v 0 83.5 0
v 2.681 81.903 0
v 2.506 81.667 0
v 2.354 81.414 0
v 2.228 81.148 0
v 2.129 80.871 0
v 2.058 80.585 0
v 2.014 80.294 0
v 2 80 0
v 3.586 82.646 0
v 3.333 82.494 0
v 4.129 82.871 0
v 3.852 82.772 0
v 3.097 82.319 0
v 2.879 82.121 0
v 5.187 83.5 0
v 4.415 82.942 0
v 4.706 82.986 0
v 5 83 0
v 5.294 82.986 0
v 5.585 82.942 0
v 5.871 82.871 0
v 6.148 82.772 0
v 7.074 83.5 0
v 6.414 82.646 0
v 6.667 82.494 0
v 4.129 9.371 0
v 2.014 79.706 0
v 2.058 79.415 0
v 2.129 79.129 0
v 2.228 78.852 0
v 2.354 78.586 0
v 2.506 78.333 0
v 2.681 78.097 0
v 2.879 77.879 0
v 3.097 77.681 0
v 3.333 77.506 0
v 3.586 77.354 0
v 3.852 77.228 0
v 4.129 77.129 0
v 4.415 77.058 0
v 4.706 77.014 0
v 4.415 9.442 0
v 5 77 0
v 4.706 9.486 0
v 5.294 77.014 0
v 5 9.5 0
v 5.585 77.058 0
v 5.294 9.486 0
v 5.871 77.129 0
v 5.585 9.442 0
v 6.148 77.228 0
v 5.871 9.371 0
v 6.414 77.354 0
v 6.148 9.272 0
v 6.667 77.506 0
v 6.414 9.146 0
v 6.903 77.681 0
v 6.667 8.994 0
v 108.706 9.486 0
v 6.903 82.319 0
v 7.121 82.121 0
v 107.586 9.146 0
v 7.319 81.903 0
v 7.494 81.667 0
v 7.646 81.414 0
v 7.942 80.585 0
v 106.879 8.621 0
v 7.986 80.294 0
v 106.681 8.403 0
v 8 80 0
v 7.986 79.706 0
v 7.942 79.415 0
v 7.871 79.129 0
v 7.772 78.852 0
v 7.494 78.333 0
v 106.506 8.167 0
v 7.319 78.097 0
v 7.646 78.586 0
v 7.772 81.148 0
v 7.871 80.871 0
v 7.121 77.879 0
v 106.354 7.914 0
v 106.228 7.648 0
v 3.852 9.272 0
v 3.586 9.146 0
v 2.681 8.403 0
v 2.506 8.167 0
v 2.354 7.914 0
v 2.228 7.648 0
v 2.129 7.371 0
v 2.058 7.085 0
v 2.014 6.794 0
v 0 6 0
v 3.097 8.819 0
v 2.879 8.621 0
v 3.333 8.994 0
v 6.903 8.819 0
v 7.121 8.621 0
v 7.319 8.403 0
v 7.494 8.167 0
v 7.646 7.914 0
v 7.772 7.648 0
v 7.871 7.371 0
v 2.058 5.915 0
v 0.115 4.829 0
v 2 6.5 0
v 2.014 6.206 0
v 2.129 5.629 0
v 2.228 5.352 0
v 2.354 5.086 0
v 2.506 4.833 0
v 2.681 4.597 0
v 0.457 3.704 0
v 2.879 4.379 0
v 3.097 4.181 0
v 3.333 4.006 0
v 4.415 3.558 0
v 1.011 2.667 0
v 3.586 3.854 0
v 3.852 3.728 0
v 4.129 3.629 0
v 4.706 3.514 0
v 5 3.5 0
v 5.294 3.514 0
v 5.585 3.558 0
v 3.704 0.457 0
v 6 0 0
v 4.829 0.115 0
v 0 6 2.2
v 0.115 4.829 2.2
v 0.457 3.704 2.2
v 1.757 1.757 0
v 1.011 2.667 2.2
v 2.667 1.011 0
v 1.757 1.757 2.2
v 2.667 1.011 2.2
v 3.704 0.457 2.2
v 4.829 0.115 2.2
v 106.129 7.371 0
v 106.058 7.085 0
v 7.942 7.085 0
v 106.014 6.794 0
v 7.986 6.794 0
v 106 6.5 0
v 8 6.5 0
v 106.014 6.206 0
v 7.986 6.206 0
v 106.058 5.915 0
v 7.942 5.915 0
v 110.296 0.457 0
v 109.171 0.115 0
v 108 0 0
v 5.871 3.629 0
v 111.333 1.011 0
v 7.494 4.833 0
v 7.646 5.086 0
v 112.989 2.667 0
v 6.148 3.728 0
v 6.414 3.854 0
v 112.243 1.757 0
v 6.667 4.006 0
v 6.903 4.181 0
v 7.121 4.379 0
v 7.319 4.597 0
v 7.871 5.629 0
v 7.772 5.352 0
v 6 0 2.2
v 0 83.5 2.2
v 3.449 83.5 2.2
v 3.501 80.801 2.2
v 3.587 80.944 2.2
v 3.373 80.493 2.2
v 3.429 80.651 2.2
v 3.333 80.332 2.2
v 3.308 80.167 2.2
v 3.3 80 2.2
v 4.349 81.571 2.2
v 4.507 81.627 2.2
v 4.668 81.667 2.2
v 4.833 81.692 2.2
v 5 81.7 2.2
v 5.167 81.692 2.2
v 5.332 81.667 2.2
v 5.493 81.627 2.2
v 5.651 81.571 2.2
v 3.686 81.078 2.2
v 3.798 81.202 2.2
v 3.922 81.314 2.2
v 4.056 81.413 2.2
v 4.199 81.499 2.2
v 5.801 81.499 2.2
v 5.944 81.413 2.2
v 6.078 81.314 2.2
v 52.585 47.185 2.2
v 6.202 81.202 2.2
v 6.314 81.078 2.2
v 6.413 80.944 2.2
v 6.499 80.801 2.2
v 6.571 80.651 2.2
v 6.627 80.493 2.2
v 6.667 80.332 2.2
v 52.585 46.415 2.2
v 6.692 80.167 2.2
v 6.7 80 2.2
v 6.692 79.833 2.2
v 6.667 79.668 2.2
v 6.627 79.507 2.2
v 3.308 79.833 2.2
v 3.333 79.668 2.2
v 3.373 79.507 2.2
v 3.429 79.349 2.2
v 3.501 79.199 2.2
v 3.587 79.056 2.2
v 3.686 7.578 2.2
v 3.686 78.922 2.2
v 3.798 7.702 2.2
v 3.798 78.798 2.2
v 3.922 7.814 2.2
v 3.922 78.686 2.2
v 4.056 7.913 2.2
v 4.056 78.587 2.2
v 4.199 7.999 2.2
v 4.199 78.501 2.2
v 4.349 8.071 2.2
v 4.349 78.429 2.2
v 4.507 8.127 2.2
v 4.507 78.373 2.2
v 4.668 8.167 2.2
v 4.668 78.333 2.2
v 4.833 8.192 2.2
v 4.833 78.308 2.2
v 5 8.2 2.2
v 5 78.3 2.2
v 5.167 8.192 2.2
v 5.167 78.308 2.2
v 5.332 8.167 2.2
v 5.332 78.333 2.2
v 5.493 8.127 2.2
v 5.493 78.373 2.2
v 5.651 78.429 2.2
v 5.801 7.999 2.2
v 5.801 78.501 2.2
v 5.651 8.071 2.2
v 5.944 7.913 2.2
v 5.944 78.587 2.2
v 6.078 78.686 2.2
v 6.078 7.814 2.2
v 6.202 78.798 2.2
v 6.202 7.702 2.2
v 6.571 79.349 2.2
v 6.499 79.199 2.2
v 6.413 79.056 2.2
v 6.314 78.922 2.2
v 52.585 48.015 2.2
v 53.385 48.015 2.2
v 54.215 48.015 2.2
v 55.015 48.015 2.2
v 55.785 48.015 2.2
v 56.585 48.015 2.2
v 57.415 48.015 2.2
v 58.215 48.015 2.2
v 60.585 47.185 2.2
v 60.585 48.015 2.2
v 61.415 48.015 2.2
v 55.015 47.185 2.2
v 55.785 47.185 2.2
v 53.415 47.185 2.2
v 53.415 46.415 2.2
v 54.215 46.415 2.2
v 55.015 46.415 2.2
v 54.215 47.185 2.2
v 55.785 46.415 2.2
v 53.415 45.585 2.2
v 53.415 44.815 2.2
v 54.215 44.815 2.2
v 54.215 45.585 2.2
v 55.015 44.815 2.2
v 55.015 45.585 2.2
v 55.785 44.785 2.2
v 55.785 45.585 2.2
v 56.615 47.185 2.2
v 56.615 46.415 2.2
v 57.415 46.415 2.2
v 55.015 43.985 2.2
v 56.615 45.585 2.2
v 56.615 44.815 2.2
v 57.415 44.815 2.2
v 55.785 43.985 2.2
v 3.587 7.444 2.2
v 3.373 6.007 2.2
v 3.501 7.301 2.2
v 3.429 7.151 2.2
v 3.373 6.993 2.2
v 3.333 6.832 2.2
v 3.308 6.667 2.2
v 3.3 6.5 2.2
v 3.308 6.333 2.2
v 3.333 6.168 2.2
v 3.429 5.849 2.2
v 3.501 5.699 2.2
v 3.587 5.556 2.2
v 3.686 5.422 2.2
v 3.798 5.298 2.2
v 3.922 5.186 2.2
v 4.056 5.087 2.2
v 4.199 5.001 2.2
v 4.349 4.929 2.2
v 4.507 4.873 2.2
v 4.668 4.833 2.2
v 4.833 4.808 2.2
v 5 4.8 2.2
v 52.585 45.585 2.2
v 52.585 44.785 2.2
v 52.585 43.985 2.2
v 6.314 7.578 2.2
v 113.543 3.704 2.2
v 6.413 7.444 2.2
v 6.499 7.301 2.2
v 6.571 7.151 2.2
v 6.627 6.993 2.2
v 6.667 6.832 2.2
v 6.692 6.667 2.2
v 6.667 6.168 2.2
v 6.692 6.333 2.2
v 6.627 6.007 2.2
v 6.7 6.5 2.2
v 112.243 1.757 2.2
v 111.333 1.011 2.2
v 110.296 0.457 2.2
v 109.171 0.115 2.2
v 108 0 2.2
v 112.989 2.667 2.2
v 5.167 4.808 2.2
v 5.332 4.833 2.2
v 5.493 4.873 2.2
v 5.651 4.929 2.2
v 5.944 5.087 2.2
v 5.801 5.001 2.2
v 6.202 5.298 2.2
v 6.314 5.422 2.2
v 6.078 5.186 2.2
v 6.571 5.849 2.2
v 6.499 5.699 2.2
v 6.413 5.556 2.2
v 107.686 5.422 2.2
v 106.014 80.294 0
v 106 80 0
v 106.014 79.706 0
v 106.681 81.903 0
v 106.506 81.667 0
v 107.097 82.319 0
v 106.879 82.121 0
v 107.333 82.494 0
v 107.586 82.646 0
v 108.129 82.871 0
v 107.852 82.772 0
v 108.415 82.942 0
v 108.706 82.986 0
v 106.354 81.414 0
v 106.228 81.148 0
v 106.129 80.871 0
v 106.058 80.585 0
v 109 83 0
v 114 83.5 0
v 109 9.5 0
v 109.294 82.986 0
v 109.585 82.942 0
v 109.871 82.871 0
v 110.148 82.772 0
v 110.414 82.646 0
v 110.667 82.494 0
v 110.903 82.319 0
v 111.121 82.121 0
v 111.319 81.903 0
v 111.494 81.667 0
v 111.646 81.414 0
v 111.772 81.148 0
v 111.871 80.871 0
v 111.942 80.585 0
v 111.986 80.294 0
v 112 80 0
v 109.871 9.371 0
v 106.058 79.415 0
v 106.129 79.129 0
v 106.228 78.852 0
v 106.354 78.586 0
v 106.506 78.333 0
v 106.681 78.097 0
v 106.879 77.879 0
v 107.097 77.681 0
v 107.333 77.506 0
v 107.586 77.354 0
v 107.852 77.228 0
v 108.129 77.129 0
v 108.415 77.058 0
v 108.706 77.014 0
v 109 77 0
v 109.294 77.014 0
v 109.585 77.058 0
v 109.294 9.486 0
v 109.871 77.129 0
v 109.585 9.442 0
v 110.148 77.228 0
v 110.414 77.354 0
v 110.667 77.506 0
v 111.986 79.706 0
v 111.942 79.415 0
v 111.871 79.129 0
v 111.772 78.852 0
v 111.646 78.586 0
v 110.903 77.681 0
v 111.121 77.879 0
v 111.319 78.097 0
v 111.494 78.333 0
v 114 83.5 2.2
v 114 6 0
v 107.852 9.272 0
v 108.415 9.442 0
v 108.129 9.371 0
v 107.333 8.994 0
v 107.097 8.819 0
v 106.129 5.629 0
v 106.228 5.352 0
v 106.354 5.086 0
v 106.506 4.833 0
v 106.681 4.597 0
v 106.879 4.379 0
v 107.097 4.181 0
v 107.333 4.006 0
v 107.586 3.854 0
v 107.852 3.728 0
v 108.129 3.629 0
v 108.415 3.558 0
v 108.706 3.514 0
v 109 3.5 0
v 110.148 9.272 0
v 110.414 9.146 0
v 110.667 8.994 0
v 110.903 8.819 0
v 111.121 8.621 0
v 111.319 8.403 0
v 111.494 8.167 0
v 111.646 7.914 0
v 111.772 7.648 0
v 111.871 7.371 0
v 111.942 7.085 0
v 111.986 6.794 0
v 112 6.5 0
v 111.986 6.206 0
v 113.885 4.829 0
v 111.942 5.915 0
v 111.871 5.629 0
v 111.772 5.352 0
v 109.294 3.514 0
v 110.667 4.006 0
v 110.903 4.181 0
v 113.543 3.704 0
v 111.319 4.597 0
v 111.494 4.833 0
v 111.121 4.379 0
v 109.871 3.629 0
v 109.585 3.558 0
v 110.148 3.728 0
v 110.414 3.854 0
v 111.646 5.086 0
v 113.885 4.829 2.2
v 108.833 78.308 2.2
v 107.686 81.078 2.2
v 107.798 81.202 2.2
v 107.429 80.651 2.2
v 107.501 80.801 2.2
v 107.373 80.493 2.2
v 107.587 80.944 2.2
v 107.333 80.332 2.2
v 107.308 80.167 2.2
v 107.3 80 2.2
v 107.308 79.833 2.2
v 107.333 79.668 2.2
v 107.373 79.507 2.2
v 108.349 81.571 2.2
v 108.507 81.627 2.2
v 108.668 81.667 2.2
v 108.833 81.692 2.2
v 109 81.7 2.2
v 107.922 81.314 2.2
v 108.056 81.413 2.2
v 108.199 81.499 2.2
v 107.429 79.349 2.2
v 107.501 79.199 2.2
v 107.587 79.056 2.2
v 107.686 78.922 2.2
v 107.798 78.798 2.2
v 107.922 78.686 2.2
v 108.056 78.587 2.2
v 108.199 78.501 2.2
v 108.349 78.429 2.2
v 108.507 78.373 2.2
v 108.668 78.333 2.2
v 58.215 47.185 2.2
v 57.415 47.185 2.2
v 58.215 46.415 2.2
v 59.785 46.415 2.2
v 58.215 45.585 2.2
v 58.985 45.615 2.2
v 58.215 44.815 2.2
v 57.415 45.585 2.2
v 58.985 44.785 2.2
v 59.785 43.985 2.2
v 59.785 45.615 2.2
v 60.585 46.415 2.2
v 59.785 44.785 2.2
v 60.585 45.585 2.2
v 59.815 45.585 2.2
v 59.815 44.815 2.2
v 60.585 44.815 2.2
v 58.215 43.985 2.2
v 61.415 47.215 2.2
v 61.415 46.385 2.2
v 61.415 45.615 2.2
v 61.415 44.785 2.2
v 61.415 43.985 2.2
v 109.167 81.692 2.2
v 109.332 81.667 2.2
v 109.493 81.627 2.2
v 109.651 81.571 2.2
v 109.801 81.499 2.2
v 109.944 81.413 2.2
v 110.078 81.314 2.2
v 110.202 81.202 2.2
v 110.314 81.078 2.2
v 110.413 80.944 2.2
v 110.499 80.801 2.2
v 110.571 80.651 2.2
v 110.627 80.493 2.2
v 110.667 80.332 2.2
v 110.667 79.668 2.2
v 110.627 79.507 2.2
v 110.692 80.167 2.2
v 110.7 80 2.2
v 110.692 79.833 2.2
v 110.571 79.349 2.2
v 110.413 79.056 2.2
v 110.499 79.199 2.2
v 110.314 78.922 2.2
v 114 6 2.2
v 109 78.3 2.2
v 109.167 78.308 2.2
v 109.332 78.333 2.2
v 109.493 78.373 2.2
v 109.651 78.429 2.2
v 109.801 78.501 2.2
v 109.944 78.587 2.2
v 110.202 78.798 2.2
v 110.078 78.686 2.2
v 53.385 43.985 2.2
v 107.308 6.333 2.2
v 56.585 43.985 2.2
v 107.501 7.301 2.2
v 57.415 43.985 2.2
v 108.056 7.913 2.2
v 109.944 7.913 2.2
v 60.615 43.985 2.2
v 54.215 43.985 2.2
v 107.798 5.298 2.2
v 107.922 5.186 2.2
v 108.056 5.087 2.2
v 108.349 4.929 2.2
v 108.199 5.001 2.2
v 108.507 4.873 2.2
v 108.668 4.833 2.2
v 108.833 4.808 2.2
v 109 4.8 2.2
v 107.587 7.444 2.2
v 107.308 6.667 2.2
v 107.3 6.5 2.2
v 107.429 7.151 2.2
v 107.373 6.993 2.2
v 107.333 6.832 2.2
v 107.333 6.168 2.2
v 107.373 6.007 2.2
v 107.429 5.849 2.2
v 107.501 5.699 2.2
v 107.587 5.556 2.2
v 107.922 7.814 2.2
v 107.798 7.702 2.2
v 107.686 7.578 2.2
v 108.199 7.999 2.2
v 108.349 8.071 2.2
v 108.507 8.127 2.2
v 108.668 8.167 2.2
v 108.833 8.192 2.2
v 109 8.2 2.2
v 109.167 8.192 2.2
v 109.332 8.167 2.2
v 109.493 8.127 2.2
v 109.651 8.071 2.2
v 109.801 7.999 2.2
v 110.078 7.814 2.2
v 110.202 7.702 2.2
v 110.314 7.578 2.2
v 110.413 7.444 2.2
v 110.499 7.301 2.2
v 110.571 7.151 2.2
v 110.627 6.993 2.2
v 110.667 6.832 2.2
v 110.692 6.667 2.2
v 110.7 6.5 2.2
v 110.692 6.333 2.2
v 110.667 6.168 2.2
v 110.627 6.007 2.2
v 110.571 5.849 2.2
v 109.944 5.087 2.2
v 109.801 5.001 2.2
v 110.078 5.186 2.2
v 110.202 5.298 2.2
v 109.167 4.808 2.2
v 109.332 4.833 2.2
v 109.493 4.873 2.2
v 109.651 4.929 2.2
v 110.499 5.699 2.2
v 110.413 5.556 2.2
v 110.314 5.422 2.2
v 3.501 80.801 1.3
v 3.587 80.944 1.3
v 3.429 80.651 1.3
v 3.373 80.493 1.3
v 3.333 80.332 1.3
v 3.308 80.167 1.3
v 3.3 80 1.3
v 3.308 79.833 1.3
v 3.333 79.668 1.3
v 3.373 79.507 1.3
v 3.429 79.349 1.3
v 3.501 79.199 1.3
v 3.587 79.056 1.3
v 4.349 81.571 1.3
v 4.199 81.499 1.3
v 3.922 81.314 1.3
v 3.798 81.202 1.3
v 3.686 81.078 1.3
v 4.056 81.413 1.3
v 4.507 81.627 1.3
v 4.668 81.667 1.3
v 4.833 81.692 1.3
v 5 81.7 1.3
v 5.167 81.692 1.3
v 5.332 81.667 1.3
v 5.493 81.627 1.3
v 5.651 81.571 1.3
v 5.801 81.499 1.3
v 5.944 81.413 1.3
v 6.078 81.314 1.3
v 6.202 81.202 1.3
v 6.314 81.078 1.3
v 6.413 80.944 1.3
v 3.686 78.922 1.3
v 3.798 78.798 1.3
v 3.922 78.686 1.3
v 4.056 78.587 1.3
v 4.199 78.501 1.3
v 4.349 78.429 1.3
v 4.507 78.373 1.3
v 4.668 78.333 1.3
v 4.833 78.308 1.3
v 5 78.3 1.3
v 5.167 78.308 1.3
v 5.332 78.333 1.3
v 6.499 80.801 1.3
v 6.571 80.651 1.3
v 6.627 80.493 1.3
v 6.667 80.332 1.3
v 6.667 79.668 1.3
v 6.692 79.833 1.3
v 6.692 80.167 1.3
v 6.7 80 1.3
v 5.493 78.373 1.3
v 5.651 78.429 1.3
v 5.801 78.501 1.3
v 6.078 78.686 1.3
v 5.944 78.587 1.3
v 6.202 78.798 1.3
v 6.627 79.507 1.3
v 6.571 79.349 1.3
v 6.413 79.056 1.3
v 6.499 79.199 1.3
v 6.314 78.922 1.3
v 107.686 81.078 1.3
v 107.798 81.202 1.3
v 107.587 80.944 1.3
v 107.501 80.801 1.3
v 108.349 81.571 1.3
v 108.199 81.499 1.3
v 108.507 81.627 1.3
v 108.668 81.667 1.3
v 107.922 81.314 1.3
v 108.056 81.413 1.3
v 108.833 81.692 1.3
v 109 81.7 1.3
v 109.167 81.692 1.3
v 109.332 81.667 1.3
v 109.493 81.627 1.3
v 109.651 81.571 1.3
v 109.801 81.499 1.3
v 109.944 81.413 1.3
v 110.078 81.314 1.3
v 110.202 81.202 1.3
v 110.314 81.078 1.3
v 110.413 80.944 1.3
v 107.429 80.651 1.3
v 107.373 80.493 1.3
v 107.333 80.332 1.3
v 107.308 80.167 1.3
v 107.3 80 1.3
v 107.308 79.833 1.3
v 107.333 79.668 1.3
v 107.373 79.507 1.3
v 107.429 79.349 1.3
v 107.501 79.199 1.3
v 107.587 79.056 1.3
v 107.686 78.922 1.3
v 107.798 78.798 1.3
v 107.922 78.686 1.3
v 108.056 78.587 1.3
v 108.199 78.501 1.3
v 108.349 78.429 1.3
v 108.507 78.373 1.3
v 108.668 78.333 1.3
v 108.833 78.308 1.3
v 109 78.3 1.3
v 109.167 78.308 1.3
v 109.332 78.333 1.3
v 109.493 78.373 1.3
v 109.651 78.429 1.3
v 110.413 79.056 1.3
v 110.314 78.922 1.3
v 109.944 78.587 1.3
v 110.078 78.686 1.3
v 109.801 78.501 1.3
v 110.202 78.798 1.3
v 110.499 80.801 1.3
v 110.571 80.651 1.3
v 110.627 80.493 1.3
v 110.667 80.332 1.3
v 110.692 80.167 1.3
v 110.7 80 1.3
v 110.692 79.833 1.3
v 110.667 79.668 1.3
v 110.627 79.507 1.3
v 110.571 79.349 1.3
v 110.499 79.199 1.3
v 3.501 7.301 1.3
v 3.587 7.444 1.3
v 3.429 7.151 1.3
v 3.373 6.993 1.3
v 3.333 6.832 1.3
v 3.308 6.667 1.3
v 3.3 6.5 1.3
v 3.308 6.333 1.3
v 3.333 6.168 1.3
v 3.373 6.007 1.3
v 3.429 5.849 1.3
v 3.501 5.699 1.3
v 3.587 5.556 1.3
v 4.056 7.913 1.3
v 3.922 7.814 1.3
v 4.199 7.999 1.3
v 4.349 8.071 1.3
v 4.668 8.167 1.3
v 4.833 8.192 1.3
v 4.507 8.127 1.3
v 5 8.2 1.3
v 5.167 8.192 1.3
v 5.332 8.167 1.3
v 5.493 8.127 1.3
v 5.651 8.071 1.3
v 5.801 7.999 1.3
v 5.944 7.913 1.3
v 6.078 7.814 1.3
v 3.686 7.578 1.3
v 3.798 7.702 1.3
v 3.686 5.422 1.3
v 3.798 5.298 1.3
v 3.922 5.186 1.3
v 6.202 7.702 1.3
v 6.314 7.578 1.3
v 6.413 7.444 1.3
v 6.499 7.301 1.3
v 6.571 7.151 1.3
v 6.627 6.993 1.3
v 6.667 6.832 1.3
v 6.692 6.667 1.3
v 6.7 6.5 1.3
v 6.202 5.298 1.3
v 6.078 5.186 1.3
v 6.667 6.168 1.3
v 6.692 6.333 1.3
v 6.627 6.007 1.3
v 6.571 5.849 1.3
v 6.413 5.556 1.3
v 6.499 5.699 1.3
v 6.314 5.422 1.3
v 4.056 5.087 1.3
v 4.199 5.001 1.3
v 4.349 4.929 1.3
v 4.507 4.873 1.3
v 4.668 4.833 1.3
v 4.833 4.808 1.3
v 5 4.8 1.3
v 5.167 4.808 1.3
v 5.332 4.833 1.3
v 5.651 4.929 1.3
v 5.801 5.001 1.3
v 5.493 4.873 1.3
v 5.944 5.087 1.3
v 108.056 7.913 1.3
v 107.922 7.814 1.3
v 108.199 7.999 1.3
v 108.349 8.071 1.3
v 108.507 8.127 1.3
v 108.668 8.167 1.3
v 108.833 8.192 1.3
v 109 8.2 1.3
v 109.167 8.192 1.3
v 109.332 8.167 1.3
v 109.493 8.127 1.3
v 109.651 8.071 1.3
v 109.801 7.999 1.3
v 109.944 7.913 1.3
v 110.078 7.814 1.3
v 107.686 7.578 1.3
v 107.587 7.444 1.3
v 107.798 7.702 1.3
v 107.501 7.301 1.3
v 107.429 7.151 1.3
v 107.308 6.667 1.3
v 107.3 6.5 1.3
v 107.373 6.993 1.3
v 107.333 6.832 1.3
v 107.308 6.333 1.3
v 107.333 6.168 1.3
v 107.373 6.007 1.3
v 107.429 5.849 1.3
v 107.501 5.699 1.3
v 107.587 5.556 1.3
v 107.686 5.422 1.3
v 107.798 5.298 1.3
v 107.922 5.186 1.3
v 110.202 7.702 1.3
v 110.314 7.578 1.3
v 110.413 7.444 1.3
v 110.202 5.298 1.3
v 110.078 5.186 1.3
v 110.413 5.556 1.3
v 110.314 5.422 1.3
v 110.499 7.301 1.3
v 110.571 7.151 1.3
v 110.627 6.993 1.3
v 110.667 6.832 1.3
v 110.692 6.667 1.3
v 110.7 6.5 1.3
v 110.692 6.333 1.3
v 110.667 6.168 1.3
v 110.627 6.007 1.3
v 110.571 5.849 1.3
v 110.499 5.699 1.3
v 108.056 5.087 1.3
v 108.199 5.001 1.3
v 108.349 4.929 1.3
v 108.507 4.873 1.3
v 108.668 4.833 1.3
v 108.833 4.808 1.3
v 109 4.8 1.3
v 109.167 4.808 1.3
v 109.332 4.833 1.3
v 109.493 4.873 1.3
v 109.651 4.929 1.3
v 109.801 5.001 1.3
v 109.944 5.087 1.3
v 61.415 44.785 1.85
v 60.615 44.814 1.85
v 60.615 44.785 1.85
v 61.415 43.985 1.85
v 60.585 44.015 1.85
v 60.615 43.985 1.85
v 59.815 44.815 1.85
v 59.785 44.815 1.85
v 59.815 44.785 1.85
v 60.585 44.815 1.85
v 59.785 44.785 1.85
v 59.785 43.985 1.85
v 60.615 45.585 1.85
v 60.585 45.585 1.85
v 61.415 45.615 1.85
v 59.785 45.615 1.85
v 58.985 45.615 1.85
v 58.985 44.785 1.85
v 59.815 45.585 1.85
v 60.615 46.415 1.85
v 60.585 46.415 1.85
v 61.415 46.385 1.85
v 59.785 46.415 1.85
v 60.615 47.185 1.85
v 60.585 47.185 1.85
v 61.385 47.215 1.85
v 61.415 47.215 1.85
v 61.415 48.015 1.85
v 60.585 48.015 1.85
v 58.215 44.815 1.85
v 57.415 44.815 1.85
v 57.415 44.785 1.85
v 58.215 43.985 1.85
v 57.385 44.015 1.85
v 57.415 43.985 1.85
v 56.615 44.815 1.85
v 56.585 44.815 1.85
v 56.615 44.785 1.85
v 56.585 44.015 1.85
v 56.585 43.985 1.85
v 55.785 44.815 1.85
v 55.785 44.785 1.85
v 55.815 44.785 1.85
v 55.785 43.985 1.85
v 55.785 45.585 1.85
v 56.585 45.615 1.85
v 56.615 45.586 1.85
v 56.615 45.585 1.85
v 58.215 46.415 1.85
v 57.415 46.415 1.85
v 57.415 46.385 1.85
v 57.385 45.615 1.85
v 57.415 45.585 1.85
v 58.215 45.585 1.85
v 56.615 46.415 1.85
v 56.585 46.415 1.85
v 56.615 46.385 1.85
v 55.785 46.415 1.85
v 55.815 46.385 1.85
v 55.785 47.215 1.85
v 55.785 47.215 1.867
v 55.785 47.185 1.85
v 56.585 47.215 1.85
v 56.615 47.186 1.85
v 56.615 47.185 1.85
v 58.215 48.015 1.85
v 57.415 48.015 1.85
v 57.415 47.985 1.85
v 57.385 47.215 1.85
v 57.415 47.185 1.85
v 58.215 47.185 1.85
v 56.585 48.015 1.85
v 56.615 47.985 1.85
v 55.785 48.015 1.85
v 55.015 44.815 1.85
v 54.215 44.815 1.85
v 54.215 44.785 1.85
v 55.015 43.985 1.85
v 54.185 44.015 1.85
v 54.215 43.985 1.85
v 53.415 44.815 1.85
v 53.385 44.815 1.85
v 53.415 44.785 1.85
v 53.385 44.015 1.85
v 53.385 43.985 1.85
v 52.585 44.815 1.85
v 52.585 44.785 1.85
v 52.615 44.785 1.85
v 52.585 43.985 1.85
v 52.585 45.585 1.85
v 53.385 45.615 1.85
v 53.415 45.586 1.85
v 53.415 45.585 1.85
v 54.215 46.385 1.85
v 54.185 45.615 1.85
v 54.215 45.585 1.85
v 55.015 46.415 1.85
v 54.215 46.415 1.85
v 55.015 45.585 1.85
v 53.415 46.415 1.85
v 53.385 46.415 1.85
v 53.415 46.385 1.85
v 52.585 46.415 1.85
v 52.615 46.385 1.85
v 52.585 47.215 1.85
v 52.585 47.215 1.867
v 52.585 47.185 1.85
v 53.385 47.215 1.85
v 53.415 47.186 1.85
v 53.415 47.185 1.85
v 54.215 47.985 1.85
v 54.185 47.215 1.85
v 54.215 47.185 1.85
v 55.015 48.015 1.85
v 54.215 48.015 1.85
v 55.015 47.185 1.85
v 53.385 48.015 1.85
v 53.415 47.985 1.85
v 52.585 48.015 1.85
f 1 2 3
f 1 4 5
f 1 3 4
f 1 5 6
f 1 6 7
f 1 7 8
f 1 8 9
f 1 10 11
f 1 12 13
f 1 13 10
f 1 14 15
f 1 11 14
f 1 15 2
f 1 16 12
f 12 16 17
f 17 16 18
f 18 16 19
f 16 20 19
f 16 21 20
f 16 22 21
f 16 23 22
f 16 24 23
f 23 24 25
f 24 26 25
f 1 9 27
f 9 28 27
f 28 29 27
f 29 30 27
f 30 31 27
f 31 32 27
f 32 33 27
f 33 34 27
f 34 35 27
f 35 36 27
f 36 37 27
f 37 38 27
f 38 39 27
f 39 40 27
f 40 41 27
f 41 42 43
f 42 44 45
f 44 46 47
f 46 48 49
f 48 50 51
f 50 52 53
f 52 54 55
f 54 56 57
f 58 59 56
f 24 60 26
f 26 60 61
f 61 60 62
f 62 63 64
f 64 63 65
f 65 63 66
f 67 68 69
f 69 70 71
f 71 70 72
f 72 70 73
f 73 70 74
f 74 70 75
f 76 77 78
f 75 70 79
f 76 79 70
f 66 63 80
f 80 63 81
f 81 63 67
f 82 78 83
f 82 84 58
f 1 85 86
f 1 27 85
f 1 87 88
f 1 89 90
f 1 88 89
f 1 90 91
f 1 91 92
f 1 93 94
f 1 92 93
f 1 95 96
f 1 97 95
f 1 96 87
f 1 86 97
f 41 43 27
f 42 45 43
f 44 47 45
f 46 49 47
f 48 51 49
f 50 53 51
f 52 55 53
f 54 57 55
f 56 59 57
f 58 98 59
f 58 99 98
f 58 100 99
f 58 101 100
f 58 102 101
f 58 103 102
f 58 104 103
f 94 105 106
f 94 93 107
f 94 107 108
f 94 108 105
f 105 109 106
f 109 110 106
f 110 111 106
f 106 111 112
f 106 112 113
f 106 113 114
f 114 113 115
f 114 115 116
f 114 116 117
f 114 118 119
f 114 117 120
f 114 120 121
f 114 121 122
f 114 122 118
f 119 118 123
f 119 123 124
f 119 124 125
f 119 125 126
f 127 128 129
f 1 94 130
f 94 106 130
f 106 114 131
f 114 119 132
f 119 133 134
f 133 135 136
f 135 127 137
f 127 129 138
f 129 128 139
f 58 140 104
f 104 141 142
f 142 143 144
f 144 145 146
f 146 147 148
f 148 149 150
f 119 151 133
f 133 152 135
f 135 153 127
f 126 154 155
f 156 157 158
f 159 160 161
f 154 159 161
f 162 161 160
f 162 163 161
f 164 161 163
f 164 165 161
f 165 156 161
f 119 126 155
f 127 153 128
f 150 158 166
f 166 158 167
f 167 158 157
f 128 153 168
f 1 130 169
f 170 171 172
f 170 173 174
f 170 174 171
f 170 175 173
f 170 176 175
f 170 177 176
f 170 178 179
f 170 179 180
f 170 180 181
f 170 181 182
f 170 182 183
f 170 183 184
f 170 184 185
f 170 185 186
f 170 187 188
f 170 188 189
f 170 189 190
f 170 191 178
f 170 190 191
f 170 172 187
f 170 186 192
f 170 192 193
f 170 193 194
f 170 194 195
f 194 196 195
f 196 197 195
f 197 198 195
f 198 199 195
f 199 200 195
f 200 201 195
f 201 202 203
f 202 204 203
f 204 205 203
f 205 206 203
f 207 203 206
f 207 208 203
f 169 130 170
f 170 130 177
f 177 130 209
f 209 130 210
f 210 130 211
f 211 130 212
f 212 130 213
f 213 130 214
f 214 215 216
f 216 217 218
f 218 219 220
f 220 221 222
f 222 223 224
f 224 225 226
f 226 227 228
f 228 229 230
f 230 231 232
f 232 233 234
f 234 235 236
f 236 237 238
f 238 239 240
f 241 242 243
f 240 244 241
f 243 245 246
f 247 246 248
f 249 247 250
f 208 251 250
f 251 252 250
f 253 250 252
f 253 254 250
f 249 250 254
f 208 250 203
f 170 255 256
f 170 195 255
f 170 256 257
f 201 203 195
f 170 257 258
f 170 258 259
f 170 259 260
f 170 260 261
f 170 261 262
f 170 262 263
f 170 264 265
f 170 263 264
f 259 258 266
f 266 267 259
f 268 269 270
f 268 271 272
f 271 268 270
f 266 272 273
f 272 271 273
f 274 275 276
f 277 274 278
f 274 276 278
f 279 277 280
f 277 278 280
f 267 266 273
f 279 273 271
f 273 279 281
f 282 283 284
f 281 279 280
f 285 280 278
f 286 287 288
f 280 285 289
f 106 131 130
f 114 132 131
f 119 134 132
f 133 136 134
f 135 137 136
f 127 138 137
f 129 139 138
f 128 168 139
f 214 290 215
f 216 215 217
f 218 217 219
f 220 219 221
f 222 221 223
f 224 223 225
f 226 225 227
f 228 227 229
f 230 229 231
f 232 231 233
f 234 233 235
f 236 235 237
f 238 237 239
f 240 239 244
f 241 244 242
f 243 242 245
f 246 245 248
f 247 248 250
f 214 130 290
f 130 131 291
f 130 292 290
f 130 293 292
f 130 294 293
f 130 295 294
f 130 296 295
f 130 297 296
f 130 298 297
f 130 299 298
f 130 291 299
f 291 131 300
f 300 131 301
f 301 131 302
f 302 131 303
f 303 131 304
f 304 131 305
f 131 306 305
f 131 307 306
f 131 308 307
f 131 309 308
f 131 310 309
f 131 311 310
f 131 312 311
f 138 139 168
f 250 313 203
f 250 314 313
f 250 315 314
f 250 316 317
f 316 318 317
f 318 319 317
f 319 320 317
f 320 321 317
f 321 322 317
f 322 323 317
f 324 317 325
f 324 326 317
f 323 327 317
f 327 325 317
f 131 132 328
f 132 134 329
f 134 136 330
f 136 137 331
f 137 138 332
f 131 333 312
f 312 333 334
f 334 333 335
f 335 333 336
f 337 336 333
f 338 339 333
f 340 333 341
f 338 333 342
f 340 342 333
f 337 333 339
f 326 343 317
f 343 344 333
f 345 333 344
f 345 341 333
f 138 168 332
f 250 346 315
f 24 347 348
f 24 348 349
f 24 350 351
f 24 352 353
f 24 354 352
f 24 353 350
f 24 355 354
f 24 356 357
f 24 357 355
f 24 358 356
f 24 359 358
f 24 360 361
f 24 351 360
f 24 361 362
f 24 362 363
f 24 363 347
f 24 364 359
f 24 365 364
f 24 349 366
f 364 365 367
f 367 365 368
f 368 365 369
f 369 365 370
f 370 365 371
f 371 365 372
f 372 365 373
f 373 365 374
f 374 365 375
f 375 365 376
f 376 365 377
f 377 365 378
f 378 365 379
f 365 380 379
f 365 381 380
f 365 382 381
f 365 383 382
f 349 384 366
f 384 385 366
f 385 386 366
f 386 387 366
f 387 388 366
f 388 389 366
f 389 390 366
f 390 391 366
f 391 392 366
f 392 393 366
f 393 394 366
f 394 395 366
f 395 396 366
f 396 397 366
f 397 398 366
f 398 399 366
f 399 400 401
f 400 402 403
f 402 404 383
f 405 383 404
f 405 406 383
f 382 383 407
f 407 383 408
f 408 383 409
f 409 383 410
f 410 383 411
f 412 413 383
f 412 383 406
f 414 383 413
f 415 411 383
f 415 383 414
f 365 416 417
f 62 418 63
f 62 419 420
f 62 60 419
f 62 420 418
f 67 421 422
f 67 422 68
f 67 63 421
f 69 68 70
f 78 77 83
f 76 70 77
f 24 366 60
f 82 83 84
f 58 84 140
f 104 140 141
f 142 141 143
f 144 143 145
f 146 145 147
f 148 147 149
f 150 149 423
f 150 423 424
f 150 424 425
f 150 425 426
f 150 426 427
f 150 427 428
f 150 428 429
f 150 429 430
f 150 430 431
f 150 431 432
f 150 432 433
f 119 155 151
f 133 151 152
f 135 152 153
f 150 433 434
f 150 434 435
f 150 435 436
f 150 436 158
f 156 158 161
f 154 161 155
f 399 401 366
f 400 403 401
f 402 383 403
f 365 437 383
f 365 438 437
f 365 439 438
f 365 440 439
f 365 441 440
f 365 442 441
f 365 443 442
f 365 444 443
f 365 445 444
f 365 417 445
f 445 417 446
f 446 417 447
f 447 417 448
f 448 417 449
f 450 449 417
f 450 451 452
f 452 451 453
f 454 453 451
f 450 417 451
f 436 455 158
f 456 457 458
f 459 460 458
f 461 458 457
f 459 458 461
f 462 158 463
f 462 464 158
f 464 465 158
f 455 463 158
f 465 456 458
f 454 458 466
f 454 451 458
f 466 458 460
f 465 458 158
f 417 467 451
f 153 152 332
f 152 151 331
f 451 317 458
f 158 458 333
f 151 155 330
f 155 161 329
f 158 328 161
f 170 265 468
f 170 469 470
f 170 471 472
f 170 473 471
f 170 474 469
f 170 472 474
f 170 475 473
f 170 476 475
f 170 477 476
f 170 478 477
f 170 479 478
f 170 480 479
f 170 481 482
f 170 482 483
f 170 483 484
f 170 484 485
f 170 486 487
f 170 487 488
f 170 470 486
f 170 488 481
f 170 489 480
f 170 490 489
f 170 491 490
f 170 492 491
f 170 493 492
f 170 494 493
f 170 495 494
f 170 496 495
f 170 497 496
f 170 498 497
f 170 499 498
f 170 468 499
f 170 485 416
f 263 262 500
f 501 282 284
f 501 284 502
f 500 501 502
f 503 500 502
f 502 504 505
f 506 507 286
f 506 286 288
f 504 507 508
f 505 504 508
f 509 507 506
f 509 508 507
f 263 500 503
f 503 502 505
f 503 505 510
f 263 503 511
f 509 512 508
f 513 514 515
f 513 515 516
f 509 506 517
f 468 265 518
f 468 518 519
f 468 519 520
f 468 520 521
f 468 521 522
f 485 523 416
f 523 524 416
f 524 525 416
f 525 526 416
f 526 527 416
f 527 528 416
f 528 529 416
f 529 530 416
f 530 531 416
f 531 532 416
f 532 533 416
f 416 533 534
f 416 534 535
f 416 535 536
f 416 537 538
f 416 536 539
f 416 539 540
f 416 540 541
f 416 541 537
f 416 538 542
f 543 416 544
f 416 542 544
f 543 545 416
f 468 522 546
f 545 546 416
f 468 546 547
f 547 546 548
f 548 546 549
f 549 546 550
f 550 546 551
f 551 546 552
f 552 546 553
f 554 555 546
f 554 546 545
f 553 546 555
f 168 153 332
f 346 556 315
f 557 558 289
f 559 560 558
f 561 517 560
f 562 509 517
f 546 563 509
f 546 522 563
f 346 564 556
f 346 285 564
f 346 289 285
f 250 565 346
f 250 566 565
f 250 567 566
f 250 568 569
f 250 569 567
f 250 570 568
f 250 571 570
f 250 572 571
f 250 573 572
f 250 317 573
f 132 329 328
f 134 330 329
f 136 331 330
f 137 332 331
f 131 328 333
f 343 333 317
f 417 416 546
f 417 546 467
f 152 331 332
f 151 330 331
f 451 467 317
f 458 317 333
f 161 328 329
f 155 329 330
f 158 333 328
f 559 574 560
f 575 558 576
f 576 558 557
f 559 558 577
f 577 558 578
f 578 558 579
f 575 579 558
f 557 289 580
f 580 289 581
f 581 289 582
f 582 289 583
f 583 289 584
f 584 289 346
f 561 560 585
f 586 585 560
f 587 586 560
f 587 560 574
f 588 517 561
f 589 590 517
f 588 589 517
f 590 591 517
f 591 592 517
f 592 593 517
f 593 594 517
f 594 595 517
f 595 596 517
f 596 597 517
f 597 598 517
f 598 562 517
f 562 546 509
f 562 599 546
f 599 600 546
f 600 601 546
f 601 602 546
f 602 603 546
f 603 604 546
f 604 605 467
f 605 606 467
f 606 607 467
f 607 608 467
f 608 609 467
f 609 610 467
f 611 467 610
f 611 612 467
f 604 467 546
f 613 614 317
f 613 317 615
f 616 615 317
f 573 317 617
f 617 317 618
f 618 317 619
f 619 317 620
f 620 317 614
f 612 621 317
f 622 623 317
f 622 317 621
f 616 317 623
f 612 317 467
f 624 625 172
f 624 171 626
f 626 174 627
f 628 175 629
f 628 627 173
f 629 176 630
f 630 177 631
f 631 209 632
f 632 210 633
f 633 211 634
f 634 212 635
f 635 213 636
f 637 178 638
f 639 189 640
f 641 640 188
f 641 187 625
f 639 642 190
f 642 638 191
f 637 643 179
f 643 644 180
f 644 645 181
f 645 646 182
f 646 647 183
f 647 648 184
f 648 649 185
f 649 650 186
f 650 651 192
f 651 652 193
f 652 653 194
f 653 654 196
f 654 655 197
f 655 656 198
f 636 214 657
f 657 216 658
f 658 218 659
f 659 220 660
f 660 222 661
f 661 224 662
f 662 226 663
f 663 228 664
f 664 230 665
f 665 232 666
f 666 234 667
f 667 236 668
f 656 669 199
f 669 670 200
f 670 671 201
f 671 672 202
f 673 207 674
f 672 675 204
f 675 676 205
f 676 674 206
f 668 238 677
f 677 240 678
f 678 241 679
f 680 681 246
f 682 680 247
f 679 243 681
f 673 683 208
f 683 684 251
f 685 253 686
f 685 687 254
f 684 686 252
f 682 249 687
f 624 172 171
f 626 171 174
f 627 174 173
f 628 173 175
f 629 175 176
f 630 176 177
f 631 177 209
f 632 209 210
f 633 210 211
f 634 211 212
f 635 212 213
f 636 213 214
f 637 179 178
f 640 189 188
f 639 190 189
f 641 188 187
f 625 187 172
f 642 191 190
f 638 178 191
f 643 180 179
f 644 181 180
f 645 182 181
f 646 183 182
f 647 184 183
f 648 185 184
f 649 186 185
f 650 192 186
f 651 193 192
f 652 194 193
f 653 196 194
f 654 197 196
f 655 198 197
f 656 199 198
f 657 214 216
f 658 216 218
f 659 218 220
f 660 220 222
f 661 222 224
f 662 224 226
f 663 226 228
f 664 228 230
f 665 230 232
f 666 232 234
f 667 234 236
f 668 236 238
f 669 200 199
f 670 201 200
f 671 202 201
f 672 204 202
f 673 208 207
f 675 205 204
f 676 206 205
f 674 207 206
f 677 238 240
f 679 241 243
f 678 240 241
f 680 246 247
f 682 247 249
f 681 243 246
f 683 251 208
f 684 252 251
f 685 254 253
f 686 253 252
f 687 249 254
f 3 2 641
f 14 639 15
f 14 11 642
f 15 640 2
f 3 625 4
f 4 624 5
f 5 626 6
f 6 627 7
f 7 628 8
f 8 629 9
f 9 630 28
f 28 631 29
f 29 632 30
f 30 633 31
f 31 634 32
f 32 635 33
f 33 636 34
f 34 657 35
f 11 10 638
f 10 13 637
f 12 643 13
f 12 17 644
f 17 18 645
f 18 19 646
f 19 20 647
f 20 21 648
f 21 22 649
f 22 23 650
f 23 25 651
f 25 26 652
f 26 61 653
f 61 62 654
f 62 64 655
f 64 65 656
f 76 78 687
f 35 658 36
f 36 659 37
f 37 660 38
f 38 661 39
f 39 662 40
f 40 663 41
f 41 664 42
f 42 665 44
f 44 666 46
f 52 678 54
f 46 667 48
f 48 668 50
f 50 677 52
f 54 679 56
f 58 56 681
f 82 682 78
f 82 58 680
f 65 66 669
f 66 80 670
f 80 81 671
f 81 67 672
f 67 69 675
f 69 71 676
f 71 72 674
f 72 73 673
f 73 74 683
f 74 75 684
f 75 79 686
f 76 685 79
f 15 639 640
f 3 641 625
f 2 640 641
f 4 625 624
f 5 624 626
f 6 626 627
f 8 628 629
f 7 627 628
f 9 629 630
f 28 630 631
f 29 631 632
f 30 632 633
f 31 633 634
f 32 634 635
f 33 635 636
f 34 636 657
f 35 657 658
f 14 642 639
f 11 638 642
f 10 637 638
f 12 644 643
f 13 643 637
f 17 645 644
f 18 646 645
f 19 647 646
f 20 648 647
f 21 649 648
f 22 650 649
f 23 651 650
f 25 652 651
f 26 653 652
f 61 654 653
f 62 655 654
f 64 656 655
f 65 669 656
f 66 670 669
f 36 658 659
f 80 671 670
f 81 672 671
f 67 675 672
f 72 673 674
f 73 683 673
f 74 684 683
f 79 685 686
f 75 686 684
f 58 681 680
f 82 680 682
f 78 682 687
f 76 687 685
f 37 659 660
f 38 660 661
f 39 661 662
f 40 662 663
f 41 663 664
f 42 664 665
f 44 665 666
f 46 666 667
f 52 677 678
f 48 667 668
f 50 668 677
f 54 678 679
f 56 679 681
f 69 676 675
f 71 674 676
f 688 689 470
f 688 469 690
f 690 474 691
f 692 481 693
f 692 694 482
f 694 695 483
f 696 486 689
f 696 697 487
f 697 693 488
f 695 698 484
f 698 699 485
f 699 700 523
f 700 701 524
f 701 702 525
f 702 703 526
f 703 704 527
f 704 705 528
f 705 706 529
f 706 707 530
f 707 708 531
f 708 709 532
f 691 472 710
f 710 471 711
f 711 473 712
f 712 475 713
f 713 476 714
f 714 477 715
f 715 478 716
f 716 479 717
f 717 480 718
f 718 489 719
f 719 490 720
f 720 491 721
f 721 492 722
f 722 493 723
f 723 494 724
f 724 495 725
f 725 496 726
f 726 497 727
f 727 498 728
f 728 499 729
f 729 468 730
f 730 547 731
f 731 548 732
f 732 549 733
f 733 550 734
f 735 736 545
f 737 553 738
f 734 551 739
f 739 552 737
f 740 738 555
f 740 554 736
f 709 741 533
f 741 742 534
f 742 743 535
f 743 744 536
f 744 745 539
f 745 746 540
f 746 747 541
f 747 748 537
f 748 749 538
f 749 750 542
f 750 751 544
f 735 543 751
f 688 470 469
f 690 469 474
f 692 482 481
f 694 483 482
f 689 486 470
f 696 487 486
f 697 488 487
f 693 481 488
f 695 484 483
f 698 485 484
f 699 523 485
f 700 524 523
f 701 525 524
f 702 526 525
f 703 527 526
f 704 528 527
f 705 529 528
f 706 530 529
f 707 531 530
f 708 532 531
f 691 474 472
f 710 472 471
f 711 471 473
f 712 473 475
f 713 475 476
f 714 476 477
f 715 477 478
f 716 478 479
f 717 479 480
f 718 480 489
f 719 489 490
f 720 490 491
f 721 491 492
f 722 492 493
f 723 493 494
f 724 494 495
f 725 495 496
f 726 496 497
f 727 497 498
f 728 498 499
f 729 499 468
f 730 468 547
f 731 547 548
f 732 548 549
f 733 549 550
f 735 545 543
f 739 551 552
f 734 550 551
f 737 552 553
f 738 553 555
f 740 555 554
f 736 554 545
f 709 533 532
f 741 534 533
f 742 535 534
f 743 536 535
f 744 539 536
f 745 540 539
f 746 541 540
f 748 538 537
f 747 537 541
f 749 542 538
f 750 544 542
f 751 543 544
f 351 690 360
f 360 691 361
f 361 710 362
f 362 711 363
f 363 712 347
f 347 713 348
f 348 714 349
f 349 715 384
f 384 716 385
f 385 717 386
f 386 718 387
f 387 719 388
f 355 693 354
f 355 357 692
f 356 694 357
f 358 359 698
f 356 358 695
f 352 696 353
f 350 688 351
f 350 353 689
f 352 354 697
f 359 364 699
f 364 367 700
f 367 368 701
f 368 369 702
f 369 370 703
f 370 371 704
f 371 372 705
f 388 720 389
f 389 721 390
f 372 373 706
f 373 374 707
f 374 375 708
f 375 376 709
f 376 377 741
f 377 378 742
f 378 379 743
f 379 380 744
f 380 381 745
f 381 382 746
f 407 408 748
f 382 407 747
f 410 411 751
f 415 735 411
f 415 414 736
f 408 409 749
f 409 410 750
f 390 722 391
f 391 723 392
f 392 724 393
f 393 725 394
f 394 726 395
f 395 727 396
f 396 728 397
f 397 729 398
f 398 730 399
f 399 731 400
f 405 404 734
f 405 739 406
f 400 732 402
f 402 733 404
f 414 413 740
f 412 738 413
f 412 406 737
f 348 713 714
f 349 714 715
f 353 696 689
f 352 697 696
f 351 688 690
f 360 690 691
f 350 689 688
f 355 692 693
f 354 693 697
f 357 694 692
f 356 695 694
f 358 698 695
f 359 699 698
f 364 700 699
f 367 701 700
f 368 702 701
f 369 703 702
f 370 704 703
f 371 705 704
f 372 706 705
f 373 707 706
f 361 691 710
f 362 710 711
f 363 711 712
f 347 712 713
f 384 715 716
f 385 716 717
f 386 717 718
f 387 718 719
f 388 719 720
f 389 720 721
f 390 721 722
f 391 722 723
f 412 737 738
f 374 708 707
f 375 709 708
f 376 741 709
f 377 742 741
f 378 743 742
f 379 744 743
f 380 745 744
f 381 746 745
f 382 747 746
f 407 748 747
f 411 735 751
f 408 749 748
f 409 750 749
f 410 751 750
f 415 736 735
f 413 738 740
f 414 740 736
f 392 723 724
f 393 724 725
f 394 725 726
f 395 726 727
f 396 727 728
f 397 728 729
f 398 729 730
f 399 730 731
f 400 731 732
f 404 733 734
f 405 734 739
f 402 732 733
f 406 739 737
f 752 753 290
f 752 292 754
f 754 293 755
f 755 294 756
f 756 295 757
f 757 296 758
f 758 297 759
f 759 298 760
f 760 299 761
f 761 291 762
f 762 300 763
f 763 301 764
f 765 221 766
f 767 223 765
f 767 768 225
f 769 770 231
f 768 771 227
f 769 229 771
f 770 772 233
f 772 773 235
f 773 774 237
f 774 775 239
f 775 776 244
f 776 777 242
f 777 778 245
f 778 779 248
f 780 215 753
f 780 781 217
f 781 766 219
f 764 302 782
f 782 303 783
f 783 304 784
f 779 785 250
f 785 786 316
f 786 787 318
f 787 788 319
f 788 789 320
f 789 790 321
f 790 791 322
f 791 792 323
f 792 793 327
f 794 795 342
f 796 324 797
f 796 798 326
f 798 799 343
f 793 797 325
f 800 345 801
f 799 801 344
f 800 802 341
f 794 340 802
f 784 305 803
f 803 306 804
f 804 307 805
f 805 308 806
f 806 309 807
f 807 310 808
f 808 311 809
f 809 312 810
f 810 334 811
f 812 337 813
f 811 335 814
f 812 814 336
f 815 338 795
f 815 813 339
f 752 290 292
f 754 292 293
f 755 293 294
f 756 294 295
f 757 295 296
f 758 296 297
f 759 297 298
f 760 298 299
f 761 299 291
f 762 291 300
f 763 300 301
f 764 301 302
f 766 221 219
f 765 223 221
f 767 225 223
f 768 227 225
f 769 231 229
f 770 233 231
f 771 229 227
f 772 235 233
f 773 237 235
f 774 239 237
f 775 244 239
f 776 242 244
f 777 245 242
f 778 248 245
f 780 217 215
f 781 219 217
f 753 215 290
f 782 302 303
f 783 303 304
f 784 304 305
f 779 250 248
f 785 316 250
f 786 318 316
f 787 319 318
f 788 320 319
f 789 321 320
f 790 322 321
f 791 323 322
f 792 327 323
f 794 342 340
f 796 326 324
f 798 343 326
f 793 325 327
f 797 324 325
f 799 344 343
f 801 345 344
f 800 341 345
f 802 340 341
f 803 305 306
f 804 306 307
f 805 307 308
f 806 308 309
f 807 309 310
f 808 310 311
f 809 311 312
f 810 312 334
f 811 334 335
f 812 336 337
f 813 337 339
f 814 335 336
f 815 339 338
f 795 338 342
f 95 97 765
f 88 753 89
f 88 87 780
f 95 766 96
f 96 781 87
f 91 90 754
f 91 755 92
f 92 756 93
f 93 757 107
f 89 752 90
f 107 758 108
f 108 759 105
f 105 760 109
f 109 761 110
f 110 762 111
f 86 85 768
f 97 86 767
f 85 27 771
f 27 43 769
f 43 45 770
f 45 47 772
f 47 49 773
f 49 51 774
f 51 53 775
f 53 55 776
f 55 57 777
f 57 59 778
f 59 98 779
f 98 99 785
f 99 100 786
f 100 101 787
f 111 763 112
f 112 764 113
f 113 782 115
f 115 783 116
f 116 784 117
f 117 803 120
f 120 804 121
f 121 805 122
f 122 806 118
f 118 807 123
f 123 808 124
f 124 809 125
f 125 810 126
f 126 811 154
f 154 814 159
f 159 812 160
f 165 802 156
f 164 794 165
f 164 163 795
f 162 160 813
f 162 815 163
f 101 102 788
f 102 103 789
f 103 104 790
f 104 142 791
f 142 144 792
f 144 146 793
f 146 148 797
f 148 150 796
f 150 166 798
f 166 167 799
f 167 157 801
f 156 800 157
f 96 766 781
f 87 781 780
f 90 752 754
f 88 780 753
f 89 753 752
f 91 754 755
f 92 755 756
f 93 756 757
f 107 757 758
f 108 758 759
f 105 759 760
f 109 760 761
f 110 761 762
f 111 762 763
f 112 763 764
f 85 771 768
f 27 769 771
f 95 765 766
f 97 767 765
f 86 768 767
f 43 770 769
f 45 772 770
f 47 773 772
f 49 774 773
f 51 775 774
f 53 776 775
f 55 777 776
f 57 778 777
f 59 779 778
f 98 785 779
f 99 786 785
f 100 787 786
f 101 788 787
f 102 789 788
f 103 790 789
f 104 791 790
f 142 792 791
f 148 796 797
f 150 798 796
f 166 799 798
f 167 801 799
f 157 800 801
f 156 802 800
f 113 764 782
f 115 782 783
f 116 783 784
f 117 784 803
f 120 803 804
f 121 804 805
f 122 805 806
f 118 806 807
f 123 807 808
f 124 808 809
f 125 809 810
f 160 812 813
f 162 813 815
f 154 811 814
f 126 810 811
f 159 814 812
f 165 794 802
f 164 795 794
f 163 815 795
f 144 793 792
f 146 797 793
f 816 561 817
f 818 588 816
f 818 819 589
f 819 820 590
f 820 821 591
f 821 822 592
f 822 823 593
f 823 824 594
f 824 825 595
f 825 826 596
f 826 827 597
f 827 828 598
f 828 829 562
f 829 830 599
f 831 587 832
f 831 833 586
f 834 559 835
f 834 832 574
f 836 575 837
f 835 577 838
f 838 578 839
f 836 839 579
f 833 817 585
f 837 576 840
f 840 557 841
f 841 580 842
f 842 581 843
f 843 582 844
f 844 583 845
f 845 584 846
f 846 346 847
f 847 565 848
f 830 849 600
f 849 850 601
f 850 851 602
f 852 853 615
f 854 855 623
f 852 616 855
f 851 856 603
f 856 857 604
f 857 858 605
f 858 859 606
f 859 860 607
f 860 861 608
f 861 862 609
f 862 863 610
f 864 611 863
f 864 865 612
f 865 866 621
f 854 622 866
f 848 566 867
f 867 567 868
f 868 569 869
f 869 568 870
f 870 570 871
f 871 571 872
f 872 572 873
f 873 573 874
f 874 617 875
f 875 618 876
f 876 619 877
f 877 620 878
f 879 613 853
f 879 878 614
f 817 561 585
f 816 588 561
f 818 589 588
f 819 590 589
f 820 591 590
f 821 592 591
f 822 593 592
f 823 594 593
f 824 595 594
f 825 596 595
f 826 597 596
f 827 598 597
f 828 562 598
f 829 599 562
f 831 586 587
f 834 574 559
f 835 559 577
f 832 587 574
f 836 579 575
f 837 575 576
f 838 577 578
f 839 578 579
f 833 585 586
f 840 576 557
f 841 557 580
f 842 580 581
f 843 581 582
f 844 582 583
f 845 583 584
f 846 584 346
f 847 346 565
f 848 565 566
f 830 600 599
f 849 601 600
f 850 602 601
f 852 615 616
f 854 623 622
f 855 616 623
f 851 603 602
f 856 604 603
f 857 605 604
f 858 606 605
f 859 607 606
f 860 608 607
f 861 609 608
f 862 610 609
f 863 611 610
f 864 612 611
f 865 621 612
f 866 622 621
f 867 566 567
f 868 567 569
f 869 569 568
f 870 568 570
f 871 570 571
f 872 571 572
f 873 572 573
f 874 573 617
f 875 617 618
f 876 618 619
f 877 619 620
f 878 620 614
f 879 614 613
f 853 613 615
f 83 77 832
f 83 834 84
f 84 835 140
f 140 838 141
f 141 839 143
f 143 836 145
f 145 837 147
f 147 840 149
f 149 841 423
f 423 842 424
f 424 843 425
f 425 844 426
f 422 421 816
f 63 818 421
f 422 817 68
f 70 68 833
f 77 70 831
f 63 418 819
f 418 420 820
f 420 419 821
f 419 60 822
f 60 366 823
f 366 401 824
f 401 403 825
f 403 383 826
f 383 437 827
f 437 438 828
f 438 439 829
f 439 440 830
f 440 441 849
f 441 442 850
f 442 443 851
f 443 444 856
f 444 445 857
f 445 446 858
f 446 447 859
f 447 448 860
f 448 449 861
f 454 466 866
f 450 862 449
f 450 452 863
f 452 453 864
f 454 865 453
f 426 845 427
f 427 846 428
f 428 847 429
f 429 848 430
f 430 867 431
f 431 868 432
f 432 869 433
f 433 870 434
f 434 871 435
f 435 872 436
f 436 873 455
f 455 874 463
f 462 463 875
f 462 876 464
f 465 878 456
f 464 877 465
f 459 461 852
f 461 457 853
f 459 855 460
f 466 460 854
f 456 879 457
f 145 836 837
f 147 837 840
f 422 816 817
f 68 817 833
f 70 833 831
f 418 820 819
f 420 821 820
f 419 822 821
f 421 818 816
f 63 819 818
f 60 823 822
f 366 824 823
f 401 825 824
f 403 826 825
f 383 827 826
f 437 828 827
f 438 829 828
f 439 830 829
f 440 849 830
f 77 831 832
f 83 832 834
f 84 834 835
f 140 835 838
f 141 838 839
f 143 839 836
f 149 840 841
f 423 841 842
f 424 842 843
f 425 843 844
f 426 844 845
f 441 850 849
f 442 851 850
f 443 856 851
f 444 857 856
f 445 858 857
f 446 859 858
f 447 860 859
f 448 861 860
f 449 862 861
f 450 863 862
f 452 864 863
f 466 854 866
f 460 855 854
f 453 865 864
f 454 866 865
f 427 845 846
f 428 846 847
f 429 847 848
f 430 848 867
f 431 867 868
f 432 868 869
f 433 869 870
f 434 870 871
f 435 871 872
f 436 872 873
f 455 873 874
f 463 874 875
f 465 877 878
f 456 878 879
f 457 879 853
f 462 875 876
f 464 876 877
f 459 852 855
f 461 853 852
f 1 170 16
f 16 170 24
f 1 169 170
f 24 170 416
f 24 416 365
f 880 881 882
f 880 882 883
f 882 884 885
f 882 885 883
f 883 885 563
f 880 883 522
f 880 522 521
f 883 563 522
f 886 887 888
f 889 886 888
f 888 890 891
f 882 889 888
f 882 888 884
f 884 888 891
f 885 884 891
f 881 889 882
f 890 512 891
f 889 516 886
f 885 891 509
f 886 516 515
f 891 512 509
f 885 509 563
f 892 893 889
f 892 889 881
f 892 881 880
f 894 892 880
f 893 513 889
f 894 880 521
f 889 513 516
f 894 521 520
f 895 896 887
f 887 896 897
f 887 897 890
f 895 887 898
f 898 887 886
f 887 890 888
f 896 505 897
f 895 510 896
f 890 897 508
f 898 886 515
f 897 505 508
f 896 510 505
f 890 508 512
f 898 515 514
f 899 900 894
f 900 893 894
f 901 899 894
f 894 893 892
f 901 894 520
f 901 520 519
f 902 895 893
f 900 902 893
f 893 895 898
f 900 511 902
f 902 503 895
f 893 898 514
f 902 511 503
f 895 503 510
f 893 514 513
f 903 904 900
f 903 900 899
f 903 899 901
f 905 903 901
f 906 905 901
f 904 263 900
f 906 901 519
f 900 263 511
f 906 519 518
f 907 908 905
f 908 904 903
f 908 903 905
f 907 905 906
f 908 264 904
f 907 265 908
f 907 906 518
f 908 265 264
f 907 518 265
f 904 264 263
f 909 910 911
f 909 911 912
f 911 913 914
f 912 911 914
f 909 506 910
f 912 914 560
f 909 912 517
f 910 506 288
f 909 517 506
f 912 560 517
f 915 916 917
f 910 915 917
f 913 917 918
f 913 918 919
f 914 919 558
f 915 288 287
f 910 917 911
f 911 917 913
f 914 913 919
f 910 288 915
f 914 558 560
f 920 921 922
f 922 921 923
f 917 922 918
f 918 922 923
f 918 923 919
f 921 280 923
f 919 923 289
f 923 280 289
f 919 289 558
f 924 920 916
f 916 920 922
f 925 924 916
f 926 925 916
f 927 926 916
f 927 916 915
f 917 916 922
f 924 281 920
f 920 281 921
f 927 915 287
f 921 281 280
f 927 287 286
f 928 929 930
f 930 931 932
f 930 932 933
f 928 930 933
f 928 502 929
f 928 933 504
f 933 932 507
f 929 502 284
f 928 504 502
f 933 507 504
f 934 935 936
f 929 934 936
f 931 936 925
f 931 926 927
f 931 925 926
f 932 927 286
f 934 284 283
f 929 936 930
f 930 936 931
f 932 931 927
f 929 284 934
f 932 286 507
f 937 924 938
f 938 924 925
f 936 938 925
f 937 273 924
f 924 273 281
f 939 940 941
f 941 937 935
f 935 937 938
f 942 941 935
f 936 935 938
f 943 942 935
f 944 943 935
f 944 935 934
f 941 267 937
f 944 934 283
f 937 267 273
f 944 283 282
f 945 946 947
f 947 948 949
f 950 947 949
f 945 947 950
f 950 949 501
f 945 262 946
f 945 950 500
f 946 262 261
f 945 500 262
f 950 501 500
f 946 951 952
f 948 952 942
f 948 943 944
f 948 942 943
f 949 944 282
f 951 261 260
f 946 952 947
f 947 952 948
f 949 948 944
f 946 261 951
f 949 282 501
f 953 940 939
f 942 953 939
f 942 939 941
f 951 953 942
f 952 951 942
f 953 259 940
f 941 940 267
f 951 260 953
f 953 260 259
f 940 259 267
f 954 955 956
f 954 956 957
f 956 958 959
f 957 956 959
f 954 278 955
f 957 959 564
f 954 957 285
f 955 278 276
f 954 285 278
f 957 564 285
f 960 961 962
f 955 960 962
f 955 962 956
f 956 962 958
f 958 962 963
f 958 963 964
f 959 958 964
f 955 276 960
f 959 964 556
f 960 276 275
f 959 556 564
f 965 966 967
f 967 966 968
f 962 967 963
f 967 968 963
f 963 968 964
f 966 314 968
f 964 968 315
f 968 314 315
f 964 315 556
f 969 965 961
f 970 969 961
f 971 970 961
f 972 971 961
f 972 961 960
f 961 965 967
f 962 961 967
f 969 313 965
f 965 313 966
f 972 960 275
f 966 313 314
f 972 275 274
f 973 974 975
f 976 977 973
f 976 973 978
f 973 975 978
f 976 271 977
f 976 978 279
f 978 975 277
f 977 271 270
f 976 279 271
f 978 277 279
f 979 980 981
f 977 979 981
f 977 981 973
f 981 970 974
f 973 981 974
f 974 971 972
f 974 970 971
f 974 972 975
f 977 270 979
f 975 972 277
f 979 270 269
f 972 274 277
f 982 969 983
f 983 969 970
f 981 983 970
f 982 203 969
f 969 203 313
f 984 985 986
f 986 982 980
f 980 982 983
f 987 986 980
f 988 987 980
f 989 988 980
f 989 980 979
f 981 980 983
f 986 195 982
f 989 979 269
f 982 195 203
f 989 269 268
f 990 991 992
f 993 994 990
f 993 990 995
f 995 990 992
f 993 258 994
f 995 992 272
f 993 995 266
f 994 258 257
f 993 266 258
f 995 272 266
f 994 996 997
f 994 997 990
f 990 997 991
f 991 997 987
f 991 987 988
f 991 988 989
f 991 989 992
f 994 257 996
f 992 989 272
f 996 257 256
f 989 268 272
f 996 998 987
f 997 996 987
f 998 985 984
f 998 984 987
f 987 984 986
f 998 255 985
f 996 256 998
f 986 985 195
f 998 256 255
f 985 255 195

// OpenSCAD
// 上罩側維修蓋
$fn=64;
translate([37,126.5,98.2]){rotate([90,0,0]){difference(){difference(){difference(){difference(){difference(){difference(){difference(){difference(){difference(){difference(){translate([0,-96,0]){rotate([90,0,0]){translate([20,80.5,0]){translate([0,0,0]){linear_extrude(height=2.2)polygon([[57,40],[56.88471,41.17054],[56.54328,42.2961],[55.98882,43.33342],[55.24264,44.24264],[54.33342,44.98882],[53.2961,45.54328],[52.17054,45.88471],[51,46],[-51,46],[-52.17054,45.88471],[-53.2961,45.54328],[-54.33342,44.98882],[-55.24264,44.24264],[-55.98882,43.33342],[-56.54328,42.2961],[-56.88471,41.17054],[-57,40],[-57,-40],[-56.88471,-41.17054],[-56.54328,-42.2961],[-55.98882,-43.33342],[-55.24264,-44.24264],[-54.33342,-44.98882],[-53.2961,-45.54328],[-52.17054,-45.88471],[-51,-46],[51,-46],[52.17054,-45.88471],[53.2961,-45.54328],[54.33342,-44.98882],[55.24264,-44.24264],[55.98882,-43.33342],[56.54328,-42.2961],[56.88471,-41.17054],[57,-40]]);}}}}translate([-32,-100,46.5]){rotate([-90,0,0]){translate([0,0,0]){cylinder(h=6,d1=3.4,d2=3.4,$fn=64);}}}}translate([-32,-98.3,46.5]){rotate([-90,0,0]){translate([0,0,0]){cylinder(h=1.4,d1=6.2,d2=3.4,$fn=64);}}}}translate([72,-100,46.5]){rotate([-90,0,0]){translate([0,0,0]){cylinder(h=6,d1=3.4,d2=3.4,$fn=64);}}}}translate([72,-98.3,46.5]){rotate([-90,0,0]){translate([0,0,0]){cylinder(h=1.4,d1=6.2,d2=3.4,$fn=64);}}}}translate([-32,-100,120]){rotate([-90,0,0]){translate([0,0,0]){cylinder(h=6,d1=3.4,d2=3.4,$fn=64);}}}}translate([-32,-98.3,120]){rotate([-90,0,0]){translate([0,0,0]){cylinder(h=1.4,d1=6.2,d2=3.4,$fn=64);}}}}translate([72,-100,120]){rotate([-90,0,0]){translate([0,0,0]){cylinder(h=6,d1=3.4,d2=3.4,$fn=64);}}}}translate([72,-98.3,120]){rotate([-90,0,0]){translate([0,0,0]){cylinder(h=1.4,d1=6.2,d2=3.4,$fn=64);}}}}translate([-250,-250,-100]){cube([500,500,143]);}}multmatrix([[-1,0,0,20],[0,0,1,-96],[0,1,0,80.5],[0,0,0,1]]){union(){union(){union(){union(){union(){union(){union(){union(){union(){union(){union(){union(){union(){union(){union(){union(){union(){union(){union(){union(){union(){union(){union(){union(){union(){union(){union(){union(){union(){translate([-4.415,1.185,-0.35]){cube([0.83,0.83,0.47]);}translate([-3.615,1.185,-0.35]){cube([0.83,0.83,0.47]);}}translate([-4.415,0.385,-0.35]){cube([0.83,0.83,0.47]);}}translate([-2.815,0.385,-0.35]){cube([0.83,0.83,0.47]);}}translate([-4.415,-0.415,-0.35]){cube([0.83,0.83,0.47]);}}translate([-3.615,-0.415,-0.35]){cube([0.83,0.83,0.47]);}}translate([-4.415,-1.215,-0.35]){cube([0.83,0.83,0.47]);}}translate([-4.415,-2.015,-0.35]){cube([0.83,0.83,0.47]);}}translate([-1.215,1.185,-0.35]){cube([0.83,0.83,0.47]);}}translate([-0.415,1.185,-0.35]){cube([0.83,0.83,0.47]);}}translate([0.385,1.185,-0.35]){cube([0.83,0.83,0.47]);}}translate([0.385,0.385,-0.35]){cube([0.83,0.83,0.47]);}}translate([-1.215,-0.415,-0.35]){cube([0.83,0.83,0.47]);}}translate([-0.415,-0.415,-0.35]){cube([0.83,0.83,0.47]);}}translate([0.385,-0.415,-0.35]){cube([0.83,0.83,0.47]);}}translate([0.385,-1.215,-0.35]){cube([0.83,0.83,0.47]);}}translate([-1.215,-2.015,-0.35]){cube([0.83,0.83,0.47]);}}translate([-0.415,-2.015,-0.35]){cube([0.83,0.83,0.47]);}}translate([0.385,-2.015,-0.35]){cube([0.83,0.83,0.47]);}}translate([1.985,1.185,-0.35]){cube([0.83,0.83,0.47]);}}translate([2.785,1.185,-0.35]){cube([0.83,0.83,0.47]);}}translate([3.585,1.185,-0.35]){cube([0.83,0.83,0.47]);}}translate([3.585,0.385,-0.35]){cube([0.83,0.83,0.47]);}}translate([1.985,-0.415,-0.35]){cube([0.83,0.83,0.47]);}}translate([2.785,-0.415,-0.35]){cube([0.83,0.83,0.47]);}}translate([3.585,-0.415,-0.35]){cube([0.83,0.83,0.47]);}}translate([3.585,-1.215,-0.35]){cube([0.83,0.83,0.47]);}}translate([1.985,-2.015,-0.35]){cube([0.83,0.83,0.47]);}}translate([2.785,-2.015,-0.35]){cube([0.83,0.83,0.47]);}}translate([3.585,-2.015,-0.35]){cube([0.83,0.83,0.47]);}}}}}}
